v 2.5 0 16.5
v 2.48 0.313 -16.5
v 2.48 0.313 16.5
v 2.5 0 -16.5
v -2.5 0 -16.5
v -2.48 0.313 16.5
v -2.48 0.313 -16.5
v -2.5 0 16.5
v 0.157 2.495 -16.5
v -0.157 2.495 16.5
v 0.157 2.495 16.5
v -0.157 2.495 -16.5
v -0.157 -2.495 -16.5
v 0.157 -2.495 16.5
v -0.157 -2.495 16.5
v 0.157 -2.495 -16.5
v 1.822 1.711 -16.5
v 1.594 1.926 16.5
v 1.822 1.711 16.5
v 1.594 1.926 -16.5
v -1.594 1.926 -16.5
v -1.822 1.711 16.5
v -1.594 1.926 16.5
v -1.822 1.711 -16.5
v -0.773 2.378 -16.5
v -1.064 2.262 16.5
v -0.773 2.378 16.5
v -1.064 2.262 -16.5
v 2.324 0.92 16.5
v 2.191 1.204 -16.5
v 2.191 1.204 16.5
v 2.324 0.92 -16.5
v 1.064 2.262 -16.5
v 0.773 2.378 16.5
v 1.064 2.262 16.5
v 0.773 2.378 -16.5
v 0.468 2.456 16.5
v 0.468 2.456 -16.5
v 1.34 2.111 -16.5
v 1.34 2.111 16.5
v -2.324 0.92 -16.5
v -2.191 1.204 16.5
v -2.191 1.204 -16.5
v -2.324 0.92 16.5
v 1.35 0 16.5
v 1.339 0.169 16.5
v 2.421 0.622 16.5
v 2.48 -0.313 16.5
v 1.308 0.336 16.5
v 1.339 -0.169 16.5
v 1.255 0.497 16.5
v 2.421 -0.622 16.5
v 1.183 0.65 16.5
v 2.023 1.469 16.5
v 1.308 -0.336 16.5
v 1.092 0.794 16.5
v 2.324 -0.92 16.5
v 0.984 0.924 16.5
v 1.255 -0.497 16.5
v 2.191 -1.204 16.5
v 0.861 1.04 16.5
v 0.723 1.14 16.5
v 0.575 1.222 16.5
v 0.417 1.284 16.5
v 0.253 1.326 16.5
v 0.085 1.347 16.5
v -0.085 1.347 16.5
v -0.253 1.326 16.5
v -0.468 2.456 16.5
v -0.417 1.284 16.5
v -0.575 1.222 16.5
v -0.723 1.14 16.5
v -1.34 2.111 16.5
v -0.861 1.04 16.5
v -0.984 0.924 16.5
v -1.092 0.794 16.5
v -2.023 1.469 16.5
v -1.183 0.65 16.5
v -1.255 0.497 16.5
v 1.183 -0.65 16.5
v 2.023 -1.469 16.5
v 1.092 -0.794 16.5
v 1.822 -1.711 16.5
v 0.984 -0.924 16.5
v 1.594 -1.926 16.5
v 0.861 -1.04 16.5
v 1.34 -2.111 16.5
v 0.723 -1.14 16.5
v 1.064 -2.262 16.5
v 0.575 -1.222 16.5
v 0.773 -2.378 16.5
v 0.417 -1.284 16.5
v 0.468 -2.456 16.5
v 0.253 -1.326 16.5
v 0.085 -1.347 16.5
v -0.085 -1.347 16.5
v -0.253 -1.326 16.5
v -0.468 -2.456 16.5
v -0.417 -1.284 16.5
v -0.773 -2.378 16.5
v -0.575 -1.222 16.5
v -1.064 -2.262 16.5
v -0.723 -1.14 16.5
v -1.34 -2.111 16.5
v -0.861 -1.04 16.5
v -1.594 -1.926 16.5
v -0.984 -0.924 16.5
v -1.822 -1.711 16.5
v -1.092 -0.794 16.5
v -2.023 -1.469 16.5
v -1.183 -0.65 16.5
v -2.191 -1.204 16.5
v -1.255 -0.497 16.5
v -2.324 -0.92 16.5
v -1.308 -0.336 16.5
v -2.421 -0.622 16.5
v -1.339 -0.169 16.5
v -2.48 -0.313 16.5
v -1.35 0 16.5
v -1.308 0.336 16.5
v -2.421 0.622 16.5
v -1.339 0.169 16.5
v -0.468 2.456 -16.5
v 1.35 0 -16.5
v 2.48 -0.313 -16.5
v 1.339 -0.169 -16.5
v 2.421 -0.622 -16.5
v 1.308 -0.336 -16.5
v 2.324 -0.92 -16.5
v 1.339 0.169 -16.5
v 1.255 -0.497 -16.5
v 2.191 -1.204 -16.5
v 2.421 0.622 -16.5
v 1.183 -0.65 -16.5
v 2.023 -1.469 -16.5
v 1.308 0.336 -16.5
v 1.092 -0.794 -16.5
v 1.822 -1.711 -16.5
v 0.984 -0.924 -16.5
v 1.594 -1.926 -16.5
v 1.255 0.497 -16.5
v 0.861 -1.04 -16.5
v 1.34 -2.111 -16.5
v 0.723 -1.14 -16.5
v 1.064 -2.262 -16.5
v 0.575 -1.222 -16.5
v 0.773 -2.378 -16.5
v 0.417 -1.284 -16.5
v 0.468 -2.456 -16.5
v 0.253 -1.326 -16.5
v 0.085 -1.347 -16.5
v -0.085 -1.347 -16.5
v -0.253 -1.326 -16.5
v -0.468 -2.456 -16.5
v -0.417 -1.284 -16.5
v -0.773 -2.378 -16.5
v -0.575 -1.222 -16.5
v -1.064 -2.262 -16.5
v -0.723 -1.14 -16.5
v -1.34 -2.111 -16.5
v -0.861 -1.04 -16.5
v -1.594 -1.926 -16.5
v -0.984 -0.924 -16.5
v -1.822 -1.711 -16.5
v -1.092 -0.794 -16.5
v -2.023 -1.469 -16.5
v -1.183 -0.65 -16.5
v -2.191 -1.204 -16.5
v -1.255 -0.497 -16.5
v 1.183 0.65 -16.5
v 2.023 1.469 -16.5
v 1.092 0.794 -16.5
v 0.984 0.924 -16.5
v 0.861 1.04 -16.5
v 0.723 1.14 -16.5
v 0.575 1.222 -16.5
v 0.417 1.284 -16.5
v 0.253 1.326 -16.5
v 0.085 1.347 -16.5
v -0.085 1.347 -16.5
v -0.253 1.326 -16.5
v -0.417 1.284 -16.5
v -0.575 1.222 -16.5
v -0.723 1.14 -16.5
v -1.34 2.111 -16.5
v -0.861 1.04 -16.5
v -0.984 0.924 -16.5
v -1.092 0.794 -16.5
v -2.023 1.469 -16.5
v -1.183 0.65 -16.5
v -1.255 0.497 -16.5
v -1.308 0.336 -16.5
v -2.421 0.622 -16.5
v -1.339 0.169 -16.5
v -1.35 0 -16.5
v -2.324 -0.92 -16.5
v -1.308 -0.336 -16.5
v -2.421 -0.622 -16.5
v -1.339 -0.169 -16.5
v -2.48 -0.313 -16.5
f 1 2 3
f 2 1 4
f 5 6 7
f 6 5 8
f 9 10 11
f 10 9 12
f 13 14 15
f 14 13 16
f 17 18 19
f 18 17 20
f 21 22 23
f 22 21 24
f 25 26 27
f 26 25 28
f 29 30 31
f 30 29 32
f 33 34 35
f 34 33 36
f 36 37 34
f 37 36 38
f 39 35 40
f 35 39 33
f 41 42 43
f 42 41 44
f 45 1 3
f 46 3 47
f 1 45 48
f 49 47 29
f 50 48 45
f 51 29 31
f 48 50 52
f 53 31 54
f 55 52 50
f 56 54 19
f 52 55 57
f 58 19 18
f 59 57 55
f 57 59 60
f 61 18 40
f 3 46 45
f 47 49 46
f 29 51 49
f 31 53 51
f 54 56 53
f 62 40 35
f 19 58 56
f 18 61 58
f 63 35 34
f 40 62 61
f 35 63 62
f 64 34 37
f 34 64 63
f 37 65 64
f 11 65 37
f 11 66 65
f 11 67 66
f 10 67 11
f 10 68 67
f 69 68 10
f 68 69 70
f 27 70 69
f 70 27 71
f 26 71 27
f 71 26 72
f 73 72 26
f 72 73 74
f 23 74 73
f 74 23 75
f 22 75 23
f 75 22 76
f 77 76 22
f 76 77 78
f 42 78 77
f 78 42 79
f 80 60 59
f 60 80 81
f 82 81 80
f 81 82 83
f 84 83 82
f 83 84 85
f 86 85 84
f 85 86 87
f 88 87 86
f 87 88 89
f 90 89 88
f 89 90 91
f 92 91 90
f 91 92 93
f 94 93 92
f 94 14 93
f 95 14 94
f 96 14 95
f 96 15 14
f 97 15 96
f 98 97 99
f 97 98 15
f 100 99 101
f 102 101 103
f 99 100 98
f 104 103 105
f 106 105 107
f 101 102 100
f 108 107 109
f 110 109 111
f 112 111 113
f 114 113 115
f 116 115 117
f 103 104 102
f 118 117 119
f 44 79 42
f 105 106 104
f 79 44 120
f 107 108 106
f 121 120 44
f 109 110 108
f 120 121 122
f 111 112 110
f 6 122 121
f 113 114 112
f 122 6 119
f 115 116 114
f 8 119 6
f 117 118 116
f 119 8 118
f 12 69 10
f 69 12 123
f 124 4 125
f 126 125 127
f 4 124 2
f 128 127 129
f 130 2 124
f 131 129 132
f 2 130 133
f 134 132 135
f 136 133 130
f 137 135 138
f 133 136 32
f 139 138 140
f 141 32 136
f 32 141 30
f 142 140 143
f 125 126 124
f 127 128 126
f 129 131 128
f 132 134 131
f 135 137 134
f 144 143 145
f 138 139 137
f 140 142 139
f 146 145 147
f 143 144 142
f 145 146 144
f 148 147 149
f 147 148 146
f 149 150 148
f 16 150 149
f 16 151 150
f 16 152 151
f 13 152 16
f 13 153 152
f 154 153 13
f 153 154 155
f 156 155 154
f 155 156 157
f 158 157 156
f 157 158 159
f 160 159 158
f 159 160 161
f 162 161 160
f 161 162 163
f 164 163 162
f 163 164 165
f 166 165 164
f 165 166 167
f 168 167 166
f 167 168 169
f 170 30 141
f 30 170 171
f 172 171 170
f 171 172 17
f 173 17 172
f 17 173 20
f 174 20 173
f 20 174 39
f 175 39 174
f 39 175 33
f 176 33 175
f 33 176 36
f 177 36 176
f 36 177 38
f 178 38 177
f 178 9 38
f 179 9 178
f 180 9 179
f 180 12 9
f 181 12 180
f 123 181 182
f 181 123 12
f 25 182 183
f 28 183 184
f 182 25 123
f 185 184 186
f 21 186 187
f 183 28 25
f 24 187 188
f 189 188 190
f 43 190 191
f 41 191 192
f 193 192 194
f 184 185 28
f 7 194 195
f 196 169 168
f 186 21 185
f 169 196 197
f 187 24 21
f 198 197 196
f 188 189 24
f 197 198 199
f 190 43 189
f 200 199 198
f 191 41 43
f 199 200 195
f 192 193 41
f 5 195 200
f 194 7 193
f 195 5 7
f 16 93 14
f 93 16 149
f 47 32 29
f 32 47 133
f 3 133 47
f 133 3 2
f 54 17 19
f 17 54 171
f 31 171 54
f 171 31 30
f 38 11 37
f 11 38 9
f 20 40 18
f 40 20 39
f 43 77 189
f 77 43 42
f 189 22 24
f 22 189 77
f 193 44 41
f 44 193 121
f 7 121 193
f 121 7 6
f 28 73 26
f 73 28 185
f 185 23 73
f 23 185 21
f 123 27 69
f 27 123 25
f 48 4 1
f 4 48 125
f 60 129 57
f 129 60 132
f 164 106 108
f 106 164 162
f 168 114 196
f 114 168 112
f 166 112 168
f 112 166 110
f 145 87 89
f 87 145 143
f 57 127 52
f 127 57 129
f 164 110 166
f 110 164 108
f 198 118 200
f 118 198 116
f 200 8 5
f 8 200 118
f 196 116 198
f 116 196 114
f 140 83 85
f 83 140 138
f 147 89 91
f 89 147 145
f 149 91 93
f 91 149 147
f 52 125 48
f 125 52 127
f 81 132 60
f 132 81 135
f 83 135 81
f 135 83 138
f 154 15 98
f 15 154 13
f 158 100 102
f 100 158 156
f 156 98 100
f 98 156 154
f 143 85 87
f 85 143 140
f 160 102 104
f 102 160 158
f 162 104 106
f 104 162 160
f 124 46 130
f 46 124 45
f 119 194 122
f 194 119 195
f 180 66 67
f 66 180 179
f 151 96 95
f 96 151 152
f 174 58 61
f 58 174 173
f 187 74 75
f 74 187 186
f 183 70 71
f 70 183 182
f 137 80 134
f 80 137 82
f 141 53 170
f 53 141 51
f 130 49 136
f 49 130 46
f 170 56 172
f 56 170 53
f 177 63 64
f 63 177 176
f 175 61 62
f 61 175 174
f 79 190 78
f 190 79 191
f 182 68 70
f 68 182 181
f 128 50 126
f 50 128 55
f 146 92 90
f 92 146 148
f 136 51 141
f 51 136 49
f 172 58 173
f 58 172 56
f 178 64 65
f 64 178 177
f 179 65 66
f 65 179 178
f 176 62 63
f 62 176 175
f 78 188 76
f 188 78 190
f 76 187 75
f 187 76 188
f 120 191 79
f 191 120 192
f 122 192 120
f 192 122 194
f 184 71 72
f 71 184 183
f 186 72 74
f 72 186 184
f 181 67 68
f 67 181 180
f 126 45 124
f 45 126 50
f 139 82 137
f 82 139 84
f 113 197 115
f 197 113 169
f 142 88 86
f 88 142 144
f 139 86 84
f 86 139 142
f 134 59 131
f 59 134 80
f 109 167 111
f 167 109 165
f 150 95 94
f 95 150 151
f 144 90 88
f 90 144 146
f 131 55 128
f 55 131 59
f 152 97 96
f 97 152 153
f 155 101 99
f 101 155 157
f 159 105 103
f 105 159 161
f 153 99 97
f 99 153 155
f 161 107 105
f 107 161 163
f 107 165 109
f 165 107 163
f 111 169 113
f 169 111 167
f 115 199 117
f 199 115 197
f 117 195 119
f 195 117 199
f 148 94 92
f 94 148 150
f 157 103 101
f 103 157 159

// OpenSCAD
$fn = 50;


difference() {
	union() {
		translate(v = [0, 0, -16.5000000000]) {
			cylinder(h = 33, r = 2.5000000000);
		}
	}
	union() {
		translate(v = [0, 0, -100.0000000000]) {
			cylinder(h = 200, r = 1.3500000000);
		}
	}
}
